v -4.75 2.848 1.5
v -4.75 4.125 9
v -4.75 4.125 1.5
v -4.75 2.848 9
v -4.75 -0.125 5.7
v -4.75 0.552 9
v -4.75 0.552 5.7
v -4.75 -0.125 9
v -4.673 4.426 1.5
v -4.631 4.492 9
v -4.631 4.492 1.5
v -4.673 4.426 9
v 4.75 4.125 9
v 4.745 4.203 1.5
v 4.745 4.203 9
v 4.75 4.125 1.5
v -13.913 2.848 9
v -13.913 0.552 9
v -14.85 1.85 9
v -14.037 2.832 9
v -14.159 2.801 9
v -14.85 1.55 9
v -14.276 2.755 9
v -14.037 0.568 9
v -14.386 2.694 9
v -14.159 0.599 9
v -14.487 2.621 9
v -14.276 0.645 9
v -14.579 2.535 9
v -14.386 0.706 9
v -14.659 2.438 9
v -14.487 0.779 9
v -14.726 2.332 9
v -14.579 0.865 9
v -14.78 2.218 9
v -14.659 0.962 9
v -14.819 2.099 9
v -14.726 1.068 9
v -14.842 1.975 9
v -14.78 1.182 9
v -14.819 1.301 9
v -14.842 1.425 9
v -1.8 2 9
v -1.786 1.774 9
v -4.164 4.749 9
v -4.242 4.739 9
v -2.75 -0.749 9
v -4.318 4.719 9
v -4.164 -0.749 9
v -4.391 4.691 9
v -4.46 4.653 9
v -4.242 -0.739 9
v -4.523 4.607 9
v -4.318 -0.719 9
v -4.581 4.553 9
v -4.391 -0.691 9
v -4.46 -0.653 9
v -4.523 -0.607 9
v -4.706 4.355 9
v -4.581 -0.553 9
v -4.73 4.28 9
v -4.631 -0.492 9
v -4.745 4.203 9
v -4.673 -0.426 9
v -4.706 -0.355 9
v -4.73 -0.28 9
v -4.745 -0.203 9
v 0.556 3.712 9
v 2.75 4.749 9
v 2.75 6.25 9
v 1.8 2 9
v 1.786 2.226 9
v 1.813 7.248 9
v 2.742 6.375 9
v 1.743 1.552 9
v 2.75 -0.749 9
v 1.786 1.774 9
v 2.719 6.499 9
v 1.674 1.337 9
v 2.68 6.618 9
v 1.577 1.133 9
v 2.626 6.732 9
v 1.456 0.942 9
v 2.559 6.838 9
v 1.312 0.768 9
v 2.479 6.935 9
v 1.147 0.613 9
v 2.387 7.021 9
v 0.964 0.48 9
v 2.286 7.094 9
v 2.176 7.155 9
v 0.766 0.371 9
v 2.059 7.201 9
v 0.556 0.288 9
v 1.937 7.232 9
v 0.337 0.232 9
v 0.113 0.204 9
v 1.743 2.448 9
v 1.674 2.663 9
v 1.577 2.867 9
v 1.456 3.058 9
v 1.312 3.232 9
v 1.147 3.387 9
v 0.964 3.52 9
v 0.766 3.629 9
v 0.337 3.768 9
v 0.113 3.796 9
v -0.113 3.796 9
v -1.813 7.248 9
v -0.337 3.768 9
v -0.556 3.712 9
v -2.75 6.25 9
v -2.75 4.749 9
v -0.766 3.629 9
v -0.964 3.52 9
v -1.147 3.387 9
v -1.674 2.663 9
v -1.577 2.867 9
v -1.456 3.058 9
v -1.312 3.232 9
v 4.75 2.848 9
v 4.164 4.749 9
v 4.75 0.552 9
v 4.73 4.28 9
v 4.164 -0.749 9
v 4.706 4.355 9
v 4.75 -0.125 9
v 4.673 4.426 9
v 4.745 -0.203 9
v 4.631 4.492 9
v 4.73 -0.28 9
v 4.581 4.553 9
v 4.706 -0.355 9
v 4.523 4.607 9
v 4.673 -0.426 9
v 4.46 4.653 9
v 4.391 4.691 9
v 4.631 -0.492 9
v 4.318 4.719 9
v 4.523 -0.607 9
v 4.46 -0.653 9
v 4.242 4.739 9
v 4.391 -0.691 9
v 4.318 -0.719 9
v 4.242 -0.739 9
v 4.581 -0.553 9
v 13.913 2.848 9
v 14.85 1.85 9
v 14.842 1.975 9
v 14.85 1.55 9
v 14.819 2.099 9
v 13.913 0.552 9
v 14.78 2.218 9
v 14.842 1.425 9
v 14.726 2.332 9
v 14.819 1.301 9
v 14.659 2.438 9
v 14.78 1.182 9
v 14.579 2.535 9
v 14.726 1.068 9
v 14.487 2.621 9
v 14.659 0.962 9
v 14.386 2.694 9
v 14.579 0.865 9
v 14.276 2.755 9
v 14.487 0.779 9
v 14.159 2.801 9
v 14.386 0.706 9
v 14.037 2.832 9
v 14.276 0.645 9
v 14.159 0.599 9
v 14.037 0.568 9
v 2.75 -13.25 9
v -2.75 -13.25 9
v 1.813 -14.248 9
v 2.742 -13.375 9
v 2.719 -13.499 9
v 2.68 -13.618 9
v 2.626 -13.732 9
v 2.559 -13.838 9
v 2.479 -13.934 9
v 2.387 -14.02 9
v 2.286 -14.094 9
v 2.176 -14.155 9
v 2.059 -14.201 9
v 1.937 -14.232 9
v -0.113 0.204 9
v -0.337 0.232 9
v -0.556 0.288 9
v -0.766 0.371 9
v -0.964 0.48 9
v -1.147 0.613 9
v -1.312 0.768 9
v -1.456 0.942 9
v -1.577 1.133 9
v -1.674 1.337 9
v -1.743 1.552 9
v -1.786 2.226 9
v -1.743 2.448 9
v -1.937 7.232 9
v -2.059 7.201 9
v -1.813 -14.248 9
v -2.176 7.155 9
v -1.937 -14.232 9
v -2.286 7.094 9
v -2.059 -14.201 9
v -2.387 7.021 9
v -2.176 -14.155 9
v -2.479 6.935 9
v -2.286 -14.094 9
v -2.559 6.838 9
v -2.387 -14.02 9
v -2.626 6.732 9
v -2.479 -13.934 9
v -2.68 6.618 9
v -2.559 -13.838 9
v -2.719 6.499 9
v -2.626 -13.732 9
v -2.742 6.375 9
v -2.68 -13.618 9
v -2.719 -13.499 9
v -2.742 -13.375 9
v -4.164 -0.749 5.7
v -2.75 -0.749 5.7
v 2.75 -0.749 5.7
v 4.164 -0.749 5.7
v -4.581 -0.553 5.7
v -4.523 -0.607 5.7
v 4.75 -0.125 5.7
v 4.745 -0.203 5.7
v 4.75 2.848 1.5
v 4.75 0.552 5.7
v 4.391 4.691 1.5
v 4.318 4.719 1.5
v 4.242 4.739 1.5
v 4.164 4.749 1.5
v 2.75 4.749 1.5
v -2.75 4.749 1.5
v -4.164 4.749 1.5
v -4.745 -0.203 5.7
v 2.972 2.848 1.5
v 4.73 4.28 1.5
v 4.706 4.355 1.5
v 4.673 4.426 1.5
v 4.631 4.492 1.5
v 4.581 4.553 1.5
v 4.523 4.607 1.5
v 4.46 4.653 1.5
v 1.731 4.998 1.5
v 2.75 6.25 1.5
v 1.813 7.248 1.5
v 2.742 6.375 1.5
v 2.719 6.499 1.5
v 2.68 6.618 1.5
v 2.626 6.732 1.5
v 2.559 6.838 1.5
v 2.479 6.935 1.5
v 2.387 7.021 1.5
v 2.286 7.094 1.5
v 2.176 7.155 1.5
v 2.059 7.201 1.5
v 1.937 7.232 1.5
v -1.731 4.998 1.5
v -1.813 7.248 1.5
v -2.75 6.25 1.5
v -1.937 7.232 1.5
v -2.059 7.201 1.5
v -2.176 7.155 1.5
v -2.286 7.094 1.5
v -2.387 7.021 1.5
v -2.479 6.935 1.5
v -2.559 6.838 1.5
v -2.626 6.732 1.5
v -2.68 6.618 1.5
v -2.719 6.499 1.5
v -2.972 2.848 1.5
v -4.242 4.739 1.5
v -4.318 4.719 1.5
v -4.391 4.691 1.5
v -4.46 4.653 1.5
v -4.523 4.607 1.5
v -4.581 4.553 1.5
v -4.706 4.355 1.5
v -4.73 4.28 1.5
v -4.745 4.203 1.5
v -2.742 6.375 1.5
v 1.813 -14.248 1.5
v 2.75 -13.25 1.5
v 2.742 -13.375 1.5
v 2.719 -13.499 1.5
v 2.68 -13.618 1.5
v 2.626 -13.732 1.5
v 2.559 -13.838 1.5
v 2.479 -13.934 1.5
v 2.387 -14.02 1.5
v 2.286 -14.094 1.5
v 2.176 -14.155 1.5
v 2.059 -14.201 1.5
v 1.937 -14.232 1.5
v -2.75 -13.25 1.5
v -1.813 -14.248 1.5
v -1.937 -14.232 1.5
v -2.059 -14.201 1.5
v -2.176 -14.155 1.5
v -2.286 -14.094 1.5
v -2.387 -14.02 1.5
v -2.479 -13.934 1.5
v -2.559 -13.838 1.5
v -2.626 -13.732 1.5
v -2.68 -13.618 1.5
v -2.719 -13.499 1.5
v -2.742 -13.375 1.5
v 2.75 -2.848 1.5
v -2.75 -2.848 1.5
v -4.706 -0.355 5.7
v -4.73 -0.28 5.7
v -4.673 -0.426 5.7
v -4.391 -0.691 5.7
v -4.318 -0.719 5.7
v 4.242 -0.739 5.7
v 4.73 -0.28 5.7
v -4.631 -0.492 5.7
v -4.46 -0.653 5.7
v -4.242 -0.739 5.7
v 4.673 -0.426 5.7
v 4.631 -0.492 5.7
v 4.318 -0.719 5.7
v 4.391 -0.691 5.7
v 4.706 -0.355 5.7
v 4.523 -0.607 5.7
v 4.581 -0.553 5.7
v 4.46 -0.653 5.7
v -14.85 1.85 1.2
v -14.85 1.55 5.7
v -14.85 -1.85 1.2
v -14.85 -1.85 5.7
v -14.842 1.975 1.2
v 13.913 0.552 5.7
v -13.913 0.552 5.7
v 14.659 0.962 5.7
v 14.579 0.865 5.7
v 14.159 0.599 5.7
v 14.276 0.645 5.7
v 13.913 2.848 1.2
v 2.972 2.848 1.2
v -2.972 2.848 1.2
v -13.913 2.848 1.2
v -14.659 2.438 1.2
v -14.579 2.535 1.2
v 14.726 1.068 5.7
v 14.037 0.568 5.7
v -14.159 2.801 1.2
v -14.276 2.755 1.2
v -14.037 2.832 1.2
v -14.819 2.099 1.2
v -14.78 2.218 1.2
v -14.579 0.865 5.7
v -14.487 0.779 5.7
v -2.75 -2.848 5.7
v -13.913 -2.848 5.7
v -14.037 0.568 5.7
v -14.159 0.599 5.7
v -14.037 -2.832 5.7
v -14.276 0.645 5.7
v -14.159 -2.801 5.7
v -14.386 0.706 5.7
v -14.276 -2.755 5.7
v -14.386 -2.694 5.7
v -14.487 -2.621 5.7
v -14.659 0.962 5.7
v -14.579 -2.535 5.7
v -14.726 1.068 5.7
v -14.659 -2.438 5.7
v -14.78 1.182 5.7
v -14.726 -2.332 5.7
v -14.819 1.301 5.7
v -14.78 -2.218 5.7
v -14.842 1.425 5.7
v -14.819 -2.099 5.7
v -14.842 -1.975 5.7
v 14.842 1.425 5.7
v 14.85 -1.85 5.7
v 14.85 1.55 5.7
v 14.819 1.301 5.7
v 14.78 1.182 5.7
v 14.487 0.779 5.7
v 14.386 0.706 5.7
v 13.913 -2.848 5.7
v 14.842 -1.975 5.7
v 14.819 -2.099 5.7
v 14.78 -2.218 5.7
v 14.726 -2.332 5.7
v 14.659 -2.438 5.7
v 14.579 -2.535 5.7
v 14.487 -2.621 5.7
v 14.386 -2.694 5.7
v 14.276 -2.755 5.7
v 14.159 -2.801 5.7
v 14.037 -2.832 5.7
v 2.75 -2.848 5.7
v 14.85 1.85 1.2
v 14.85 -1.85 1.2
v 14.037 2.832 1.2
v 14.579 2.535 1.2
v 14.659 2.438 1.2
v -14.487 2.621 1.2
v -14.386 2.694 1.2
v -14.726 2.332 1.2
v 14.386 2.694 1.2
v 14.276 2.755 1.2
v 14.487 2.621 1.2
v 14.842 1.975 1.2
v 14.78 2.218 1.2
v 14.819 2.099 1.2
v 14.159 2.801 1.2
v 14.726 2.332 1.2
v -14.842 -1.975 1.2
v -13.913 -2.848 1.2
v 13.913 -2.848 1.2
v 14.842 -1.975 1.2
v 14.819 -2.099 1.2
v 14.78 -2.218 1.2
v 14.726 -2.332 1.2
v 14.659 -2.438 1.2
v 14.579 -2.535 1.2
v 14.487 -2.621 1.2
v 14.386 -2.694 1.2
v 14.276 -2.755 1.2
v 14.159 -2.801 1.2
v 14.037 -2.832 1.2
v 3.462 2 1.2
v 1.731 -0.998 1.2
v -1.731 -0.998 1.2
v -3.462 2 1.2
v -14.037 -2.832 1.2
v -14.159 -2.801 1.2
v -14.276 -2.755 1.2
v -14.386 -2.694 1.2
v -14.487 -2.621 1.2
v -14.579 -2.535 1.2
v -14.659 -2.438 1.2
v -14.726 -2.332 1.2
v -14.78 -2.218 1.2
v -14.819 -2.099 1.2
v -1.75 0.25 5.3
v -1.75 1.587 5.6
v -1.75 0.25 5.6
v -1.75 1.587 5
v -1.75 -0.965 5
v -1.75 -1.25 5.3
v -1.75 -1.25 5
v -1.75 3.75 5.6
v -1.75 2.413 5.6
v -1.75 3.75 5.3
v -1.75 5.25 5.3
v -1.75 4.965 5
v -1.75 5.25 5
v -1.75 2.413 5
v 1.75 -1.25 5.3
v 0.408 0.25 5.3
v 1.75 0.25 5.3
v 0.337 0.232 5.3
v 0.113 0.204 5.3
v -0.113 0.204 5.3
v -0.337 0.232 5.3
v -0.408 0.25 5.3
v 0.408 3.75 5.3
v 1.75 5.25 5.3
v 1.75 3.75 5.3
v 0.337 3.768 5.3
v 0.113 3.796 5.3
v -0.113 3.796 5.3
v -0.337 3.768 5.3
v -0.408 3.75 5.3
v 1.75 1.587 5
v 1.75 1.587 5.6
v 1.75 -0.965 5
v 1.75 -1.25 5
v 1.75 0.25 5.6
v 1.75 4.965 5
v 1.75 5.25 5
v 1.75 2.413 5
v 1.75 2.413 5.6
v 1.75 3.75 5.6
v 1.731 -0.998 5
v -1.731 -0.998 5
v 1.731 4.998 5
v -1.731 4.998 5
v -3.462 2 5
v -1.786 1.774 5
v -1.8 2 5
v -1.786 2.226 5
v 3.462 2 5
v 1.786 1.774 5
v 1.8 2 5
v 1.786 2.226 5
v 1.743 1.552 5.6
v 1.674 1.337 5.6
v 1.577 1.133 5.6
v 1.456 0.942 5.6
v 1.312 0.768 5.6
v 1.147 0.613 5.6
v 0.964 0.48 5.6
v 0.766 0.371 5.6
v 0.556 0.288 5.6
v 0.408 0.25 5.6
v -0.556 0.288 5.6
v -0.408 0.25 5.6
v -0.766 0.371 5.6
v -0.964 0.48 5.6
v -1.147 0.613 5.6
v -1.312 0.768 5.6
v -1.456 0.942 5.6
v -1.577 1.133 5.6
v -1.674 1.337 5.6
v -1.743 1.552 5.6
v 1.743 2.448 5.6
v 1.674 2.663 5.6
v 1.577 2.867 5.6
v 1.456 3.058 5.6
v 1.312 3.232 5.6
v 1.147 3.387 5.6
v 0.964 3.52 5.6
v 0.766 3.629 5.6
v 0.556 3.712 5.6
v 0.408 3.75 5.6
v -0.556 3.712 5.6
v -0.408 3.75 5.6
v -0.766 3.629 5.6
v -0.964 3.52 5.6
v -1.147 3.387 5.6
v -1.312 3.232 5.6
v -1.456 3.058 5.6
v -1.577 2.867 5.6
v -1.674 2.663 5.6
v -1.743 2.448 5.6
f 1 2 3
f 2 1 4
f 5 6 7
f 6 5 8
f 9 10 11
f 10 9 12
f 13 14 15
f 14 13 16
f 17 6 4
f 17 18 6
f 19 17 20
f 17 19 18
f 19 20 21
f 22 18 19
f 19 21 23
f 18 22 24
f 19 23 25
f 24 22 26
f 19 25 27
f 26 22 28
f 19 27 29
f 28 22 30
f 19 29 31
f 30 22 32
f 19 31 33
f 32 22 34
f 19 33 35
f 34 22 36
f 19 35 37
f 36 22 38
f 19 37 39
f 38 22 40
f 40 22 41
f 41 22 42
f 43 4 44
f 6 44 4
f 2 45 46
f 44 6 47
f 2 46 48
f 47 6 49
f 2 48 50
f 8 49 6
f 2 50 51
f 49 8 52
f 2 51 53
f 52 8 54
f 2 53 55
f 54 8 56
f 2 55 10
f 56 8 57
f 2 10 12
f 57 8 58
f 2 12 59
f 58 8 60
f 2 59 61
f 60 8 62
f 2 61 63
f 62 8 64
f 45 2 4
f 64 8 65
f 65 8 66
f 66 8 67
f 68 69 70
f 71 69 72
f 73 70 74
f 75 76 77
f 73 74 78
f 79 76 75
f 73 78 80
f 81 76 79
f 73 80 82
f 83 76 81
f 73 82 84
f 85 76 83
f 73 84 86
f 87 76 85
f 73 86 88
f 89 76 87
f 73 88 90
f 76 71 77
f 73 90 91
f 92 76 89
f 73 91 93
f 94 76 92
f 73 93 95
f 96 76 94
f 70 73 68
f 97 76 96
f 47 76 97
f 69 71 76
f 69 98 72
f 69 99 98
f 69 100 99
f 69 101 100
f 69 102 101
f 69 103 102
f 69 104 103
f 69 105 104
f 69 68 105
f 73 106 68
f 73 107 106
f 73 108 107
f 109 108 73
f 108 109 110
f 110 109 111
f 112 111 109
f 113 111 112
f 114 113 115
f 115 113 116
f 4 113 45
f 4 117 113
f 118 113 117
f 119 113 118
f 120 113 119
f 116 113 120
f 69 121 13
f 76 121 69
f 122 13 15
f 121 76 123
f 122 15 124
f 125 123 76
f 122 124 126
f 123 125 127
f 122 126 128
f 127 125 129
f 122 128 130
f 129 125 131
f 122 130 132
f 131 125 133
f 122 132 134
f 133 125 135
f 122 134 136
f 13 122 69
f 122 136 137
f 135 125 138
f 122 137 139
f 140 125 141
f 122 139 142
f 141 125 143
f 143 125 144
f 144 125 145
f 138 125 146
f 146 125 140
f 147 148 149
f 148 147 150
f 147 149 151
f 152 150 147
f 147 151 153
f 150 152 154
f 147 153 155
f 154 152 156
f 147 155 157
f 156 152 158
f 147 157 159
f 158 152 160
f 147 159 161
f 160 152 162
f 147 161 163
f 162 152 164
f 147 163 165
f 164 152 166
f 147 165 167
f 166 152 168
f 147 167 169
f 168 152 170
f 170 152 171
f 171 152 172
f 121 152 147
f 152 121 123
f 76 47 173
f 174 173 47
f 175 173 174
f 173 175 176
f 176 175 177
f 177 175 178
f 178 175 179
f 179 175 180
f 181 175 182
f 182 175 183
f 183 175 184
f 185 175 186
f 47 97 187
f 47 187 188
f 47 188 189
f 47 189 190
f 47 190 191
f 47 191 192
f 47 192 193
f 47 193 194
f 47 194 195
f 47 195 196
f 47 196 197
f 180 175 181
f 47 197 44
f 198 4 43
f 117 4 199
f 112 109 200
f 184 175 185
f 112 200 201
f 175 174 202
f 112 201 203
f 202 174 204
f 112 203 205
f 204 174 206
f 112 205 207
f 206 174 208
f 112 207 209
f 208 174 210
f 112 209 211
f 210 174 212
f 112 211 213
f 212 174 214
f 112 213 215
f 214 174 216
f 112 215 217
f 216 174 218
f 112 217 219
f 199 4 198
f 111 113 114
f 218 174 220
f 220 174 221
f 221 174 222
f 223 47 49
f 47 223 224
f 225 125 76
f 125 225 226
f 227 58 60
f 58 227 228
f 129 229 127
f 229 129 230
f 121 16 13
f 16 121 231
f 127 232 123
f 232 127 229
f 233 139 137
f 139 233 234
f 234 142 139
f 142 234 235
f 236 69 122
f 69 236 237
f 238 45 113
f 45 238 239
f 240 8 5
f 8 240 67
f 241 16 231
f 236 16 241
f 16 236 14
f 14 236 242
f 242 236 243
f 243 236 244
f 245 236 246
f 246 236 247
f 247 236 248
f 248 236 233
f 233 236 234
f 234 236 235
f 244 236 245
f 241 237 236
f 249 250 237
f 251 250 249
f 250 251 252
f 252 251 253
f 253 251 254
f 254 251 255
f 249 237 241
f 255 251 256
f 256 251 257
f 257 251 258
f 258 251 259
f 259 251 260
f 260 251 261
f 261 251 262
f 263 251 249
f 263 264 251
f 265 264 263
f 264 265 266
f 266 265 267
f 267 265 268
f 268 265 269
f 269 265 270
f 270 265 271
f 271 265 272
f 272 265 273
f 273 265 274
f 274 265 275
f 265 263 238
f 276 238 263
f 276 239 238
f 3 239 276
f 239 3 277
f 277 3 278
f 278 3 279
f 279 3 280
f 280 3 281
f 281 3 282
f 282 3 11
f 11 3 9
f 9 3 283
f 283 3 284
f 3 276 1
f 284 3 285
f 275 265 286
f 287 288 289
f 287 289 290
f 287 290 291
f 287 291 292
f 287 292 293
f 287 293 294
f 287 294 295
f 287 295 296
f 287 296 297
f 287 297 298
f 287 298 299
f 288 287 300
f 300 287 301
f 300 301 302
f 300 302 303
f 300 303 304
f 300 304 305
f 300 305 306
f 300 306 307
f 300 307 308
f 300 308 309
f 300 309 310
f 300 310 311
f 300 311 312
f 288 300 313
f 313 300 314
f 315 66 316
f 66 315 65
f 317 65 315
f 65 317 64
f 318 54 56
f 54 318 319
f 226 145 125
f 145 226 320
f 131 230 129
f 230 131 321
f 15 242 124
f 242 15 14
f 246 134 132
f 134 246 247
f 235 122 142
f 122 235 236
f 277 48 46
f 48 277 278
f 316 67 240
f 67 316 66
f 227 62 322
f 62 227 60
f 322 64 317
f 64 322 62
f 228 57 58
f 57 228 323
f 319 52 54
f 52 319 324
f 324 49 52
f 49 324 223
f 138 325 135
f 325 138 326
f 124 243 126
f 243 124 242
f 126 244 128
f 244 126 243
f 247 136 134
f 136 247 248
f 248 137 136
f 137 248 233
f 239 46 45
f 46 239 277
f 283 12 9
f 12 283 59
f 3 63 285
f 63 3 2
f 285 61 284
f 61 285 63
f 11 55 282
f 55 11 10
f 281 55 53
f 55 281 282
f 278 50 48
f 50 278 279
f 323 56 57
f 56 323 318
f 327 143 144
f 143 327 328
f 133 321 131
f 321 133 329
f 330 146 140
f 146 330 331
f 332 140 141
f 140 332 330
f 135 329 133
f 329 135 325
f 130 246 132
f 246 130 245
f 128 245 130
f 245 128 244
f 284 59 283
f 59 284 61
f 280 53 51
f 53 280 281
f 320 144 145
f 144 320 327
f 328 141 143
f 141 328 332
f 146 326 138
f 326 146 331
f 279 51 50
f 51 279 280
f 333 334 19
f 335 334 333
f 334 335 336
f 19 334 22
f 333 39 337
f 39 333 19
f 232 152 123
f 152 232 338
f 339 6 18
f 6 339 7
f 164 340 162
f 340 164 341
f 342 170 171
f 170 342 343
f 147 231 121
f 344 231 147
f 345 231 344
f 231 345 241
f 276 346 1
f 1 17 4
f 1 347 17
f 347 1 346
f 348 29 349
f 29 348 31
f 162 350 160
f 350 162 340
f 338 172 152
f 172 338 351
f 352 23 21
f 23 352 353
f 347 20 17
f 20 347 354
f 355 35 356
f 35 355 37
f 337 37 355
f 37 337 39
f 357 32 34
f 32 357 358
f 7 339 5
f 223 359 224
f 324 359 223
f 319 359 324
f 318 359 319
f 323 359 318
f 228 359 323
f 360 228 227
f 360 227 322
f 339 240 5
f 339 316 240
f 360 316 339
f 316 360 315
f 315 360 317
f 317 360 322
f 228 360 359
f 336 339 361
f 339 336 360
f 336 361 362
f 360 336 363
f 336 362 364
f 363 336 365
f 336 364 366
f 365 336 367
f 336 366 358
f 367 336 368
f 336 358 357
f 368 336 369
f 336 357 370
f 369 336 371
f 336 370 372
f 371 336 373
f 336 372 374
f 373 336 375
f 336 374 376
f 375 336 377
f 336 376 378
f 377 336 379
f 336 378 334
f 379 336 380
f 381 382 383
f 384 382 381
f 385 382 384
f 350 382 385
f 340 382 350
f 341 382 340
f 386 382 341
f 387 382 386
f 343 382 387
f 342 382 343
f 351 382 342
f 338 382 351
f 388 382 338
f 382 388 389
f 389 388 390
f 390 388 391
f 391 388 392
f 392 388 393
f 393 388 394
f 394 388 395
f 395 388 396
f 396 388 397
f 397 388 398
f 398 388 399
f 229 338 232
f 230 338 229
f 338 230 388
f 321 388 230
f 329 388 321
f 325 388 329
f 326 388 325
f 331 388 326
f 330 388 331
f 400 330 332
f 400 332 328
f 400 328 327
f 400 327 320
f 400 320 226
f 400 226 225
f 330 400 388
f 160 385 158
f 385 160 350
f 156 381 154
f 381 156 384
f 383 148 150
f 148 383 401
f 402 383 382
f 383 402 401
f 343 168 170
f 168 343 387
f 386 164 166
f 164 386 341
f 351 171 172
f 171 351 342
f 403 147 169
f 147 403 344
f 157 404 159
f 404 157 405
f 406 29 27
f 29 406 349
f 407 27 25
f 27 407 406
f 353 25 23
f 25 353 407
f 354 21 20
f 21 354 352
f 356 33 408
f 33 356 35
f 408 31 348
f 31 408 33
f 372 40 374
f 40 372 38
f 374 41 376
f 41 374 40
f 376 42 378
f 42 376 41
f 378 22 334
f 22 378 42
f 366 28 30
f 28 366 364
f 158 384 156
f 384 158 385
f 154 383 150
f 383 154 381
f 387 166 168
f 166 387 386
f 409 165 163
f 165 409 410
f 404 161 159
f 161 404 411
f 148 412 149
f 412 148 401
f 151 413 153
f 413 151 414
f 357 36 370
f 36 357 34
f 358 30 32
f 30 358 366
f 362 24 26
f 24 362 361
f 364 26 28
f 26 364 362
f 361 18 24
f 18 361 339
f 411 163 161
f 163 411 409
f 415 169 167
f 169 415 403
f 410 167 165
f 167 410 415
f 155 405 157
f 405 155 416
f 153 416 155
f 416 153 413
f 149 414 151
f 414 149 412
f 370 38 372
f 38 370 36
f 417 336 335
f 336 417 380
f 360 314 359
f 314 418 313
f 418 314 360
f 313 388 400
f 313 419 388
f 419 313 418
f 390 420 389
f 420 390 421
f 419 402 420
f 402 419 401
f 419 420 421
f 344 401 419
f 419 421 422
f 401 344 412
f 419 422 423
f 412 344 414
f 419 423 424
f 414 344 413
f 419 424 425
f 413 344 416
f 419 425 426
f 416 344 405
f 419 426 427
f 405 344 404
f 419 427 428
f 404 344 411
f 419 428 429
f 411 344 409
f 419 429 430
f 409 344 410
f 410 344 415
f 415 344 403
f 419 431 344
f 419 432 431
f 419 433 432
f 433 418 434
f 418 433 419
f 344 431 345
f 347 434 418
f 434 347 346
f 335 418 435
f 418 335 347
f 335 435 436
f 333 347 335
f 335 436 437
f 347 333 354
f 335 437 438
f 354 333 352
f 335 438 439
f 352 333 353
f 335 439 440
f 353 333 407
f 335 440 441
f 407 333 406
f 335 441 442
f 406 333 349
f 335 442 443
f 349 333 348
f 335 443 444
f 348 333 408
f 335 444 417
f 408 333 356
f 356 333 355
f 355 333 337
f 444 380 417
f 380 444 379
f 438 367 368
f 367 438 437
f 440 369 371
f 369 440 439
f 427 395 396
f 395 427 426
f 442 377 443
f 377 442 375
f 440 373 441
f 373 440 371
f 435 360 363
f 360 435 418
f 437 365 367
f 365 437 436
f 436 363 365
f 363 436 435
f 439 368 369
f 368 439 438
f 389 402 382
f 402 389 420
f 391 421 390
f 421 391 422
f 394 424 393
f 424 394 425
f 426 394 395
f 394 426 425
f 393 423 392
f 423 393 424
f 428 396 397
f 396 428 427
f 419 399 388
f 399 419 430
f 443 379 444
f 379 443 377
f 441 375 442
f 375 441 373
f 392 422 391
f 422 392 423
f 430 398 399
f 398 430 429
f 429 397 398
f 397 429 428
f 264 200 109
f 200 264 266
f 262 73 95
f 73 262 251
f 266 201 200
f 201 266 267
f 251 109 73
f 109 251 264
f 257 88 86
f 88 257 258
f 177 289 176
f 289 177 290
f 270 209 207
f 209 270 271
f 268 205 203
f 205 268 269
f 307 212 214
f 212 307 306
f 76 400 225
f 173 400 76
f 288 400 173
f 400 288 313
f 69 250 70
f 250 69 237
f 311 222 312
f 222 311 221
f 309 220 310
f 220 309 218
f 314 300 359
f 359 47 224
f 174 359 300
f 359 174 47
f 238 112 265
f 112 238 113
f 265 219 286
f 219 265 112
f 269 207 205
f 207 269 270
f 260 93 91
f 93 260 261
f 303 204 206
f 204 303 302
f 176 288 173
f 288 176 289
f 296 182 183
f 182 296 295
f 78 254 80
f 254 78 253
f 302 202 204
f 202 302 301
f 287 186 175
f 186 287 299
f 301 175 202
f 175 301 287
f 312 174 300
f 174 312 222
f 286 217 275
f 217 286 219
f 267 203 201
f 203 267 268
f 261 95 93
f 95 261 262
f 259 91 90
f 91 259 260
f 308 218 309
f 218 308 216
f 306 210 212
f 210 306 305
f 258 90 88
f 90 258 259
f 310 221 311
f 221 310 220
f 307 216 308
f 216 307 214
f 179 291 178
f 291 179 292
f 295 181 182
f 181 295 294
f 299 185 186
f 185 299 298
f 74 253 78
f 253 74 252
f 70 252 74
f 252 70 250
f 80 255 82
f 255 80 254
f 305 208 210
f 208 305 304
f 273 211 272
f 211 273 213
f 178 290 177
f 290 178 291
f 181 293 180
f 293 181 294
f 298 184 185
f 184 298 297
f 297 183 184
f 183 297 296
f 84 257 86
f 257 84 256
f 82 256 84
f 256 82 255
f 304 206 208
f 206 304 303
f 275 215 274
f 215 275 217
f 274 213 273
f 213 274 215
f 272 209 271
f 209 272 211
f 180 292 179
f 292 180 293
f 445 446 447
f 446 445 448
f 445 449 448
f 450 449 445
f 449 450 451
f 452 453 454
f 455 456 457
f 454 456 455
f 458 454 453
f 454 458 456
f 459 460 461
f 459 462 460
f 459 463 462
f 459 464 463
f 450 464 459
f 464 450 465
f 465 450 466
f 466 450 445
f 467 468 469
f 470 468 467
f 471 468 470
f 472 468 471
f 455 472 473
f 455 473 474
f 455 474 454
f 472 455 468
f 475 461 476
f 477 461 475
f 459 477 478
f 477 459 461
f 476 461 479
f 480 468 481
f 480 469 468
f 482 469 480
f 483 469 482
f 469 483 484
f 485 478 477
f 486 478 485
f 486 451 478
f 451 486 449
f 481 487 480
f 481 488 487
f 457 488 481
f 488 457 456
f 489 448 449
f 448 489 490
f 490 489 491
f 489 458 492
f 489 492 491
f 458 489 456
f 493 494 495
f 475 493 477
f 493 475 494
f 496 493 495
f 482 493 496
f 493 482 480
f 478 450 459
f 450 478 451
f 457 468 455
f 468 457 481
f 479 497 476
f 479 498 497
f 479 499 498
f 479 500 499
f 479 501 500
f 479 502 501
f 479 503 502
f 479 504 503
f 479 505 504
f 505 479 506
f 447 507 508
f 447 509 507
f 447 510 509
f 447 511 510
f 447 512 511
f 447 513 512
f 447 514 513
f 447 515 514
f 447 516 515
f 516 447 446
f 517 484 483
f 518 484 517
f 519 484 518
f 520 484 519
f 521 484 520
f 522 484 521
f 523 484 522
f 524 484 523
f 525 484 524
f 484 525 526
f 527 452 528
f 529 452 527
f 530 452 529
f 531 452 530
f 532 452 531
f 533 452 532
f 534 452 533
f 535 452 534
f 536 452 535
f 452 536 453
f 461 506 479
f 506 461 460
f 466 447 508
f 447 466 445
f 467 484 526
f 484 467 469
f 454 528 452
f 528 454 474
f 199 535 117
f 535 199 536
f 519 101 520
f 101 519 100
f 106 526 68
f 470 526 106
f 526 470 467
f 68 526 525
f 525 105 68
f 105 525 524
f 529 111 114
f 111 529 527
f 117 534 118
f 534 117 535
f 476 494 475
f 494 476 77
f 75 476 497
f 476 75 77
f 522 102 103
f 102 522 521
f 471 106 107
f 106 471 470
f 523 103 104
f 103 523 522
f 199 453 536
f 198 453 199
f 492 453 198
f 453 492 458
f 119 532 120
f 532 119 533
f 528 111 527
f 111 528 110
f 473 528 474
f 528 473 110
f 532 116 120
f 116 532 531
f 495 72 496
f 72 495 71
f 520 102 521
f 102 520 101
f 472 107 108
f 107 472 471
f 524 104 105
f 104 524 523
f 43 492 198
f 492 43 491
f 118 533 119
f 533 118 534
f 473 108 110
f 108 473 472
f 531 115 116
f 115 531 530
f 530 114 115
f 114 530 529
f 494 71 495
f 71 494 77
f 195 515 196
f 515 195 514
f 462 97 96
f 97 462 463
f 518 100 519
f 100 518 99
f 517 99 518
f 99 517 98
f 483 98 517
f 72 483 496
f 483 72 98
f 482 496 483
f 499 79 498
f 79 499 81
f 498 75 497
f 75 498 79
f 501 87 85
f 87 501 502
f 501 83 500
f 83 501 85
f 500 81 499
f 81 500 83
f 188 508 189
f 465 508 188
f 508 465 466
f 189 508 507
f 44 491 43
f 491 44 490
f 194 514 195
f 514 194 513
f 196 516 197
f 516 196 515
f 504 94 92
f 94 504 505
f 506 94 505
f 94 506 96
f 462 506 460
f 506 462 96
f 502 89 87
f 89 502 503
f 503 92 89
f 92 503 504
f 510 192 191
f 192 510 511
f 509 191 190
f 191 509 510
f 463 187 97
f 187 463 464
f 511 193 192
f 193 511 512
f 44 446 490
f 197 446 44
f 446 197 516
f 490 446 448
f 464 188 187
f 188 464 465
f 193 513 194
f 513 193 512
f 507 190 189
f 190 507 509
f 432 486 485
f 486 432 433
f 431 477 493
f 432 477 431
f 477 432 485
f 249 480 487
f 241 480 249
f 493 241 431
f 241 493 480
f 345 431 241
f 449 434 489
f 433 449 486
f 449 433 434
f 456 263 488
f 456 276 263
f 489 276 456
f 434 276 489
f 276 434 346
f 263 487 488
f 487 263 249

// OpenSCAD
$fn = 50;


difference() {
	union() {
		translate(v = [0, 2.0000000000, 1.5000000000]) {
			hull() {
				translate(v = [-4.1250000000, 2.1250000000, 0]) {
					cylinder(h = 7.5000000000, r = 0.6250000000);
				}
				translate(v = [4.1250000000, 2.1250000000, 0]) {
					cylinder(h = 7.5000000000, r = 0.6250000000);
				}
				translate(v = [-4.1250000000, -2.1250000000, 0]) {
					cylinder(h = 7.5000000000, r = 0.6250000000);
				}
				translate(v = [4.1250000000, -2.1250000000, 0]) {
					cylinder(h = 7.5000000000, r = 0.6250000000);
				}
			}
		}
		translate(v = [0, 1.7000000000, 5.7000000000]) {
			hull() {
				translate(v = [-13.8500000000, -0.1500000000, 0]) {
					cylinder(h = 3.3000000000, r = 1);
				}
				translate(v = [13.8500000000, -0.1500000000, 0]) {
					cylinder(h = 3.3000000000, r = 1);
				}
				translate(v = [-13.8500000000, 0.1500000000, 0]) {
					cylinder(h = 3.3000000000, r = 1);
				}
				translate(v = [13.8500000000, 0.1500000000, 0]) {
					cylinder(h = 3.3000000000, r = 1);
				}
			}
		}
		translate(v = [0, 0, 1.2000000000]) {
			hull() {
				translate(v = [-13.8500000000, 1.8500000000, 0]) {
					cylinder(h = 4.5000000000, r = 1);
				}
				translate(v = [13.8500000000, 1.8500000000, 0]) {
					cylinder(h = 4.5000000000, r = 1);
				}
				translate(v = [-13.8500000000, -1.8500000000, 0]) {
					cylinder(h = 4.5000000000, r = 1);
				}
				translate(v = [13.8500000000, -1.8500000000, 0]) {
					cylinder(h = 4.5000000000, r = 1);
				}
			}
		}
		translate(v = [0, -3.5000000000, 6]) {
			hull() {
				translate(v = [-1.7500000000, 9.7500000000, 0]) {
					cylinder(h = 3, r = 1);
				}
				translate(v = [1.7500000000, 9.7500000000, 0]) {
					cylinder(h = 3, r = 1);
				}
				translate(v = [-1.7500000000, -9.7500000000, 0]) {
					cylinder(h = 3, r = 1);
				}
				translate(v = [1.7500000000, -9.7500000000, 0]) {
					cylinder(h = 3, r = 1);
				}
			}
		}
		translate(v = [0, -3.5000000000, 1.5000000000]) {
			hull() {
				translate(v = [-1.7500000000, 9.7500000000, 0]) {
					cylinder(h = 4.5000000000, r = 1);
				}
				translate(v = [1.7500000000, 9.7500000000, 0]) {
					cylinder(h = 4.5000000000, r = 1);
				}
				translate(v = [-1.7500000000, -9.7500000000, 0]) {
					cylinder(h = 4.5000000000, r = 1);
				}
				translate(v = [1.7500000000, -9.7500000000, 0]) {
					cylinder(h = 4.5000000000, r = 1);
				}
			}
		}
	}
	union() {
		translate(v = [0, 2.0000000000, 0]) {
			rotate(a = [0, 0, 0]) {
				difference() {
					union() {
						#translate(v = [-1.7500000000, -3.2500000000, -0.3000000000]) {
							cube(size = [3.5000000000, 6.5000000000, 0.3000000000]);
						}
						#translate(v = [-1.7500000000, -1.7500000000, -0.6000000000]) {
							cube(size = [3.5000000000, 3.5000000000, 0.3000000000]);
						}
						#translate(v = [-1.7500000000, -3.2500000000, 5]) {
							cube(size = [3.5000000000, 6.5000000000, 0.3000000000]);
						}
						#translate(v = [-1.7500000000, -1.7500000000, 5.3000000000]) {
							cube(size = [3.5000000000, 3.5000000000, 0.3000000000]);
						}
						#translate(v = [0, 0, -100.0000000000]) {
							cylinder(h = 200, r = 1.8000000000);
						}
						#linear_extrude(height = 5) {
							polygon(points = [[3.4620000000, 0.0000000000], [1.7310000000, 2.9981799479], [-1.7310000000, 2.9981799479], [-3.4620000000, 0.0000000000], [-1.7310000000, -2.9981799479], [1.7310000000, -2.9981799479]]);
						}
						#translate(v = [-1.7500000000, -3.2500000000, -0.3000000000]) {
							cube(size = [3.5000000000, 6.5000000000, 0.3000000000]);
						}
						#translate(v = [-1.7500000000, -1.7500000000, -0.6000000000]) {
							cube(size = [3.5000000000, 3.5000000000, 0.3000000000]);
						}
						#translate(v = [-1.7500000000, -3.2500000000, 5]) {
							cube(size = [3.5000000000, 6.5000000000, 0.3000000000]);
						}
						#translate(v = [-1.7500000000, -1.7500000000, 5.3000000000]) {
							cube(size = [3.5000000000, 3.5000000000, 0.3000000000]);
						}
						#translate(v = [0, 0, -100.0000000000]) {
							cylinder(h = 200, r = 1.8000000000);
						}
						#translate(v = [-1.7500000000, -3.2500000000, -0.3000000000]) {
							cube(size = [3.5000000000, 6.5000000000, 0.3000000000]);
						}
						#translate(v = [-1.7500000000, -1.7500000000, -0.6000000000]) {
							cube(size = [3.5000000000, 3.5000000000, 0.3000000000]);
						}
						#translate(v = [-1.7500000000, -3.2500000000, 5]) {
							cube(size = [3.5000000000, 6.5000000000, 0.3000000000]);
						}
						#translate(v = [-1.7500000000, -1.7500000000, 5.3000000000]) {
							cube(size = [3.5000000000, 3.5000000000, 0.3000000000]);
						}
						#translate(v = [0, 0, -100.0000000000]) {
							cylinder(h = 200, r = 1.8000000000);
						}
					}
					union();
				}
			}
		}
	}
}
